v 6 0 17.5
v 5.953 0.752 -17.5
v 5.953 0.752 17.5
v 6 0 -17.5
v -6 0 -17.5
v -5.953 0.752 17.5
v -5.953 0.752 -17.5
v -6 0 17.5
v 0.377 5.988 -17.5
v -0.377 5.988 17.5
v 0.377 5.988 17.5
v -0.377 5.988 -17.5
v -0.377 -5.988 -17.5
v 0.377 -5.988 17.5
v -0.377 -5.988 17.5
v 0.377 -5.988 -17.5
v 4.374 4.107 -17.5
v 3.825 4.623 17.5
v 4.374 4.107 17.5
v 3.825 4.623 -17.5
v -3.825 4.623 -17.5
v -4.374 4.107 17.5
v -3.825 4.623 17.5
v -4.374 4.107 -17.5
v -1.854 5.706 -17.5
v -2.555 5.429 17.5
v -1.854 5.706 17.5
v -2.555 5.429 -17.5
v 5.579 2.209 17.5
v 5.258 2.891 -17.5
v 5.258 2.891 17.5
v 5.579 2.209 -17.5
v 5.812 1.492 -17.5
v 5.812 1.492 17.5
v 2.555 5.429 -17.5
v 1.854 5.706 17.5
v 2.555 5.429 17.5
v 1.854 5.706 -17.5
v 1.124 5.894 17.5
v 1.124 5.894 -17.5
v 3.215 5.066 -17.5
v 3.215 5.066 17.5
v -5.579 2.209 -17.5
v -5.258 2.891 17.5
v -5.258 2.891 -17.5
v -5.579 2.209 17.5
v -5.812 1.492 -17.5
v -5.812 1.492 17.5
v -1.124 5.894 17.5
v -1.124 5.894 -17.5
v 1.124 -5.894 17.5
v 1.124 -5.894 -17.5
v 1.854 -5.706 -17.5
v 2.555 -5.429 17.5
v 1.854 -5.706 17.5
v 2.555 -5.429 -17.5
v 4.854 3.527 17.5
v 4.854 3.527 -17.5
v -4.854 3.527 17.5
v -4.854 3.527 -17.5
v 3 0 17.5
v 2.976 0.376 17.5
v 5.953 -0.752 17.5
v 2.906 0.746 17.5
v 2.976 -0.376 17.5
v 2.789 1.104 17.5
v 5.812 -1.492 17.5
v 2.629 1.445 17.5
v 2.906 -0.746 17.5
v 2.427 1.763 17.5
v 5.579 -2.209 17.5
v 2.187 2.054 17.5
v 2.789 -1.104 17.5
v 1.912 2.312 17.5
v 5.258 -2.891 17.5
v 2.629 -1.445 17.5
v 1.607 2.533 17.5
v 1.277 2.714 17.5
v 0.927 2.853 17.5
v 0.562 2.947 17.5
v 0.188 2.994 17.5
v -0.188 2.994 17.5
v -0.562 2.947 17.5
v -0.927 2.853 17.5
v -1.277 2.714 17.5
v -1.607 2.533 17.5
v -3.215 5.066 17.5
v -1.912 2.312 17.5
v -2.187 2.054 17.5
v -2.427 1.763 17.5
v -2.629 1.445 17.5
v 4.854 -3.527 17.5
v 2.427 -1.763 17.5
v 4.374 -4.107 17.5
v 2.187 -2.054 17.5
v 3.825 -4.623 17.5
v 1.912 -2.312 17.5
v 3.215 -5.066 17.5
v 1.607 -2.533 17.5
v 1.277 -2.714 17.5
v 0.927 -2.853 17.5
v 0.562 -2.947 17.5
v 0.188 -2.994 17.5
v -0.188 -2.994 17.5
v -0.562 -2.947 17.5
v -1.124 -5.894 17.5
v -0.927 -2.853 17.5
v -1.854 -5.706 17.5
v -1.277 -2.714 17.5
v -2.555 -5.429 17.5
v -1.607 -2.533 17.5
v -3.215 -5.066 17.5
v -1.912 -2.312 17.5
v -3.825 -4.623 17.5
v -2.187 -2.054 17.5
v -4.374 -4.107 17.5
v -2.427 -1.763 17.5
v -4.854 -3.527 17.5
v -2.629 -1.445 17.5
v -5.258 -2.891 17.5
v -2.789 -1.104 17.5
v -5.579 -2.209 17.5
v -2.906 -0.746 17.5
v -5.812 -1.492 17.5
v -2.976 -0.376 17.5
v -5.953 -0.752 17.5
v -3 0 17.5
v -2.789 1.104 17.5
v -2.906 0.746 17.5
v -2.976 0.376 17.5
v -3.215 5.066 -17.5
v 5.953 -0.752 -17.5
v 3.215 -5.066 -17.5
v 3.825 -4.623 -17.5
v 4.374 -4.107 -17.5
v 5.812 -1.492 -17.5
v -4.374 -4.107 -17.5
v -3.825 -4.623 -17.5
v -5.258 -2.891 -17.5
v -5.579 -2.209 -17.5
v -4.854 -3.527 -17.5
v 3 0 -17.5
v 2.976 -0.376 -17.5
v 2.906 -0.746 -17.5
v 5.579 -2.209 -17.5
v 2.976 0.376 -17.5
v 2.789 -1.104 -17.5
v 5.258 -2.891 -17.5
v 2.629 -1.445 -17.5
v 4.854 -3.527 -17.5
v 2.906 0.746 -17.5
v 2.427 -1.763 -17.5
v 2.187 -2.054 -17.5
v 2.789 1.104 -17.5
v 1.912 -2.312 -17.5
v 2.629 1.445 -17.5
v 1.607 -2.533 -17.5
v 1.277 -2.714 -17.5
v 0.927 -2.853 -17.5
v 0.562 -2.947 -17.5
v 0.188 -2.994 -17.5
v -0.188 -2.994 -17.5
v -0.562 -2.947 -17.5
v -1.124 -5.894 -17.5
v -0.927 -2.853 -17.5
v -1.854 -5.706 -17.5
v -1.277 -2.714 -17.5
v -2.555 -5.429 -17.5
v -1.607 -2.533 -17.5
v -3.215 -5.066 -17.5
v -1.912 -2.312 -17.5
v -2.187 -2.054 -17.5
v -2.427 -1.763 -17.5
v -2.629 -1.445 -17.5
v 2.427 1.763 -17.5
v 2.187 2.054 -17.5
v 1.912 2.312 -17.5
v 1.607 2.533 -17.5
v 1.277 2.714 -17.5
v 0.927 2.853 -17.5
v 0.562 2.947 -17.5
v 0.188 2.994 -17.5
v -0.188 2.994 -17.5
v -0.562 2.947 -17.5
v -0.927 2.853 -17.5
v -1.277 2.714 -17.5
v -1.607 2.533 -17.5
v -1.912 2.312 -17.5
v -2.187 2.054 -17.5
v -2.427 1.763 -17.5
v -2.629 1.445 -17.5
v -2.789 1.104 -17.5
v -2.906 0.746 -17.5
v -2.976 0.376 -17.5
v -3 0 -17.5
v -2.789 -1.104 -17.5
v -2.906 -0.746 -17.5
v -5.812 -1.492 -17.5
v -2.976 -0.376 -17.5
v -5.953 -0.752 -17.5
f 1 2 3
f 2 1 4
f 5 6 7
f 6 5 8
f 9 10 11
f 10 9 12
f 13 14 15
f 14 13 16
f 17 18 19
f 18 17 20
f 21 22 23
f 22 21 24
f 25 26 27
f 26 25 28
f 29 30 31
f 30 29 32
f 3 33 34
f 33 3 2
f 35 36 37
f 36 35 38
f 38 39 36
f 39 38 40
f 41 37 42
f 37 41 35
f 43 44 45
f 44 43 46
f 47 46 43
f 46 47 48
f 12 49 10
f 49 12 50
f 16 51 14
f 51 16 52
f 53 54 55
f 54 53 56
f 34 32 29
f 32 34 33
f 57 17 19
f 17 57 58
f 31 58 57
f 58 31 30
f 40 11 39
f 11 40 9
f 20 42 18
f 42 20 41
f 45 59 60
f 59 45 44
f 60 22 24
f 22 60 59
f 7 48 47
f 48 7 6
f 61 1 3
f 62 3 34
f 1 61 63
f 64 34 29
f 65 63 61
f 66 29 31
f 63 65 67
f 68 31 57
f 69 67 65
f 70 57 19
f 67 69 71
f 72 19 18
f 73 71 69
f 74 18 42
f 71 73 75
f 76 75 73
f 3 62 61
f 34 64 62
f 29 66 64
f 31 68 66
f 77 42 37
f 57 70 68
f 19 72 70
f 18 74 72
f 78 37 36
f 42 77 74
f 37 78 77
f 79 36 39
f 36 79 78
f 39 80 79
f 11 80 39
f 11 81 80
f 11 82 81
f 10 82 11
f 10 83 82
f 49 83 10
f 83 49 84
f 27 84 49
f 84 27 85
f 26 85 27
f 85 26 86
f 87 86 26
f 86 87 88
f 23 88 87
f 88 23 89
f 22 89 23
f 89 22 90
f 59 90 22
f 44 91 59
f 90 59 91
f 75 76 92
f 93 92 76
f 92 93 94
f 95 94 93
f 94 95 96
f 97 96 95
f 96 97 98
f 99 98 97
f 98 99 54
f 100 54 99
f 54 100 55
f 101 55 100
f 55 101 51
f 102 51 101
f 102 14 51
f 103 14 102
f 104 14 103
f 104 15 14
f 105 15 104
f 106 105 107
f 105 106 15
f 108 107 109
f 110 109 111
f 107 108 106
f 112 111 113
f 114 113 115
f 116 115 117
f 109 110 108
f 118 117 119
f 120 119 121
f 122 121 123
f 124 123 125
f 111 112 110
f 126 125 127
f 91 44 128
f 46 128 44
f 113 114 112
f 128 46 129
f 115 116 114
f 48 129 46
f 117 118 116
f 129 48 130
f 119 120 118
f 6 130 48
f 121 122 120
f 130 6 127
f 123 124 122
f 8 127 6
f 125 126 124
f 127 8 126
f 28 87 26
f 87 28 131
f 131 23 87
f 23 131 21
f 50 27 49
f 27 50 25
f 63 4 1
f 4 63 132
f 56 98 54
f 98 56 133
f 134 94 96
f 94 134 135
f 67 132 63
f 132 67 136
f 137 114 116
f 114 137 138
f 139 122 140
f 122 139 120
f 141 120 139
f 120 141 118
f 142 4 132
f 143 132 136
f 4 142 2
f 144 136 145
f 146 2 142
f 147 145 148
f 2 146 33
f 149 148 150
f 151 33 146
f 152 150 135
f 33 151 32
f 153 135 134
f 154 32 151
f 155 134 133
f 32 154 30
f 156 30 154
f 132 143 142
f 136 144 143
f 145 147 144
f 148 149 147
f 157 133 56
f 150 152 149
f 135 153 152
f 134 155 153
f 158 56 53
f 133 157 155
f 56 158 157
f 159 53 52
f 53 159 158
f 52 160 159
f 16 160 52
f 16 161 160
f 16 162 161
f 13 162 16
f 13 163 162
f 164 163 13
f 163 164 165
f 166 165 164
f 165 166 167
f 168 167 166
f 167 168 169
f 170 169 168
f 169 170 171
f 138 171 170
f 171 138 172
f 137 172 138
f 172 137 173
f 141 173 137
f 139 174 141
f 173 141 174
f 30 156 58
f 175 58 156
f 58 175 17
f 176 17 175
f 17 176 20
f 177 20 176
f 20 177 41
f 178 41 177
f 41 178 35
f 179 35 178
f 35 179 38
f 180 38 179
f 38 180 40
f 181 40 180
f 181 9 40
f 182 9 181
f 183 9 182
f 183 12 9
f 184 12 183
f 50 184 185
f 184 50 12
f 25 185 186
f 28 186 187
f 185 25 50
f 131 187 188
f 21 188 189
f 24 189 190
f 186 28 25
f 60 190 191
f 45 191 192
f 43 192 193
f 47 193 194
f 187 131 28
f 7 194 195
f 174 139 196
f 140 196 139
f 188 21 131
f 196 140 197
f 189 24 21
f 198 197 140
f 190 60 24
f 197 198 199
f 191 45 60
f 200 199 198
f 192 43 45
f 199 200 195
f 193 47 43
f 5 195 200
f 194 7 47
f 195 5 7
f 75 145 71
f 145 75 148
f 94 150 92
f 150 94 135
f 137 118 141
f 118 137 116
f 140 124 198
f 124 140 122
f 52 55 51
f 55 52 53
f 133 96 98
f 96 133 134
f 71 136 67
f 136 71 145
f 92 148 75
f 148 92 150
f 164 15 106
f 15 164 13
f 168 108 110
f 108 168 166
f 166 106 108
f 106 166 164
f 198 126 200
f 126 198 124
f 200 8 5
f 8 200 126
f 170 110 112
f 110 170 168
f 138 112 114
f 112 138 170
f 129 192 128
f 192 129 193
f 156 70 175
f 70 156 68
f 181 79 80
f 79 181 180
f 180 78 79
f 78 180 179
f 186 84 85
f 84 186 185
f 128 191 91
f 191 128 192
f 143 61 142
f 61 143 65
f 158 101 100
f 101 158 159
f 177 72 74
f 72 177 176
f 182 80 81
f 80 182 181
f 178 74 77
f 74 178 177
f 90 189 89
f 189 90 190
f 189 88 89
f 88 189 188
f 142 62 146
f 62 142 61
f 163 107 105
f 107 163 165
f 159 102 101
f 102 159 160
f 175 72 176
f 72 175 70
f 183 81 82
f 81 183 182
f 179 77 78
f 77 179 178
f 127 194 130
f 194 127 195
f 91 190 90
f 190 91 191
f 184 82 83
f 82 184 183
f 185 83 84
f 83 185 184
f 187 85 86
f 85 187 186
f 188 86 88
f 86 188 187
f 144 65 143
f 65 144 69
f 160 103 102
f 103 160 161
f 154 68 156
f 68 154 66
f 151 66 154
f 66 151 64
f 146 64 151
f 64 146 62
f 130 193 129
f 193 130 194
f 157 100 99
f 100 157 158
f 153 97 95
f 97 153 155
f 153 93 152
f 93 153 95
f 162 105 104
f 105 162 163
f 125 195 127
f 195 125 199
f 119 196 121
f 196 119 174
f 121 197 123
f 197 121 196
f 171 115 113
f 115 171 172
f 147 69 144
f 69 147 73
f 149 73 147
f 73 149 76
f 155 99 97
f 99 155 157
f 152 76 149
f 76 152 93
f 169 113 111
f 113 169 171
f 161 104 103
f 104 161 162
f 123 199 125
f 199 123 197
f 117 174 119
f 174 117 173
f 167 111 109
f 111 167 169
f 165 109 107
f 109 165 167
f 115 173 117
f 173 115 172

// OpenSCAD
$fn = 50;


difference() {
	union() {
		translate(v = [0, 0, -17.5000000000]) {
			cylinder(h = 35, r = 6.0000000000);
		}
	}
	union() {
		translate(v = [0, 0, -100.0000000000]) {
			cylinder(h = 200, r = 3);
		}
	}
}
